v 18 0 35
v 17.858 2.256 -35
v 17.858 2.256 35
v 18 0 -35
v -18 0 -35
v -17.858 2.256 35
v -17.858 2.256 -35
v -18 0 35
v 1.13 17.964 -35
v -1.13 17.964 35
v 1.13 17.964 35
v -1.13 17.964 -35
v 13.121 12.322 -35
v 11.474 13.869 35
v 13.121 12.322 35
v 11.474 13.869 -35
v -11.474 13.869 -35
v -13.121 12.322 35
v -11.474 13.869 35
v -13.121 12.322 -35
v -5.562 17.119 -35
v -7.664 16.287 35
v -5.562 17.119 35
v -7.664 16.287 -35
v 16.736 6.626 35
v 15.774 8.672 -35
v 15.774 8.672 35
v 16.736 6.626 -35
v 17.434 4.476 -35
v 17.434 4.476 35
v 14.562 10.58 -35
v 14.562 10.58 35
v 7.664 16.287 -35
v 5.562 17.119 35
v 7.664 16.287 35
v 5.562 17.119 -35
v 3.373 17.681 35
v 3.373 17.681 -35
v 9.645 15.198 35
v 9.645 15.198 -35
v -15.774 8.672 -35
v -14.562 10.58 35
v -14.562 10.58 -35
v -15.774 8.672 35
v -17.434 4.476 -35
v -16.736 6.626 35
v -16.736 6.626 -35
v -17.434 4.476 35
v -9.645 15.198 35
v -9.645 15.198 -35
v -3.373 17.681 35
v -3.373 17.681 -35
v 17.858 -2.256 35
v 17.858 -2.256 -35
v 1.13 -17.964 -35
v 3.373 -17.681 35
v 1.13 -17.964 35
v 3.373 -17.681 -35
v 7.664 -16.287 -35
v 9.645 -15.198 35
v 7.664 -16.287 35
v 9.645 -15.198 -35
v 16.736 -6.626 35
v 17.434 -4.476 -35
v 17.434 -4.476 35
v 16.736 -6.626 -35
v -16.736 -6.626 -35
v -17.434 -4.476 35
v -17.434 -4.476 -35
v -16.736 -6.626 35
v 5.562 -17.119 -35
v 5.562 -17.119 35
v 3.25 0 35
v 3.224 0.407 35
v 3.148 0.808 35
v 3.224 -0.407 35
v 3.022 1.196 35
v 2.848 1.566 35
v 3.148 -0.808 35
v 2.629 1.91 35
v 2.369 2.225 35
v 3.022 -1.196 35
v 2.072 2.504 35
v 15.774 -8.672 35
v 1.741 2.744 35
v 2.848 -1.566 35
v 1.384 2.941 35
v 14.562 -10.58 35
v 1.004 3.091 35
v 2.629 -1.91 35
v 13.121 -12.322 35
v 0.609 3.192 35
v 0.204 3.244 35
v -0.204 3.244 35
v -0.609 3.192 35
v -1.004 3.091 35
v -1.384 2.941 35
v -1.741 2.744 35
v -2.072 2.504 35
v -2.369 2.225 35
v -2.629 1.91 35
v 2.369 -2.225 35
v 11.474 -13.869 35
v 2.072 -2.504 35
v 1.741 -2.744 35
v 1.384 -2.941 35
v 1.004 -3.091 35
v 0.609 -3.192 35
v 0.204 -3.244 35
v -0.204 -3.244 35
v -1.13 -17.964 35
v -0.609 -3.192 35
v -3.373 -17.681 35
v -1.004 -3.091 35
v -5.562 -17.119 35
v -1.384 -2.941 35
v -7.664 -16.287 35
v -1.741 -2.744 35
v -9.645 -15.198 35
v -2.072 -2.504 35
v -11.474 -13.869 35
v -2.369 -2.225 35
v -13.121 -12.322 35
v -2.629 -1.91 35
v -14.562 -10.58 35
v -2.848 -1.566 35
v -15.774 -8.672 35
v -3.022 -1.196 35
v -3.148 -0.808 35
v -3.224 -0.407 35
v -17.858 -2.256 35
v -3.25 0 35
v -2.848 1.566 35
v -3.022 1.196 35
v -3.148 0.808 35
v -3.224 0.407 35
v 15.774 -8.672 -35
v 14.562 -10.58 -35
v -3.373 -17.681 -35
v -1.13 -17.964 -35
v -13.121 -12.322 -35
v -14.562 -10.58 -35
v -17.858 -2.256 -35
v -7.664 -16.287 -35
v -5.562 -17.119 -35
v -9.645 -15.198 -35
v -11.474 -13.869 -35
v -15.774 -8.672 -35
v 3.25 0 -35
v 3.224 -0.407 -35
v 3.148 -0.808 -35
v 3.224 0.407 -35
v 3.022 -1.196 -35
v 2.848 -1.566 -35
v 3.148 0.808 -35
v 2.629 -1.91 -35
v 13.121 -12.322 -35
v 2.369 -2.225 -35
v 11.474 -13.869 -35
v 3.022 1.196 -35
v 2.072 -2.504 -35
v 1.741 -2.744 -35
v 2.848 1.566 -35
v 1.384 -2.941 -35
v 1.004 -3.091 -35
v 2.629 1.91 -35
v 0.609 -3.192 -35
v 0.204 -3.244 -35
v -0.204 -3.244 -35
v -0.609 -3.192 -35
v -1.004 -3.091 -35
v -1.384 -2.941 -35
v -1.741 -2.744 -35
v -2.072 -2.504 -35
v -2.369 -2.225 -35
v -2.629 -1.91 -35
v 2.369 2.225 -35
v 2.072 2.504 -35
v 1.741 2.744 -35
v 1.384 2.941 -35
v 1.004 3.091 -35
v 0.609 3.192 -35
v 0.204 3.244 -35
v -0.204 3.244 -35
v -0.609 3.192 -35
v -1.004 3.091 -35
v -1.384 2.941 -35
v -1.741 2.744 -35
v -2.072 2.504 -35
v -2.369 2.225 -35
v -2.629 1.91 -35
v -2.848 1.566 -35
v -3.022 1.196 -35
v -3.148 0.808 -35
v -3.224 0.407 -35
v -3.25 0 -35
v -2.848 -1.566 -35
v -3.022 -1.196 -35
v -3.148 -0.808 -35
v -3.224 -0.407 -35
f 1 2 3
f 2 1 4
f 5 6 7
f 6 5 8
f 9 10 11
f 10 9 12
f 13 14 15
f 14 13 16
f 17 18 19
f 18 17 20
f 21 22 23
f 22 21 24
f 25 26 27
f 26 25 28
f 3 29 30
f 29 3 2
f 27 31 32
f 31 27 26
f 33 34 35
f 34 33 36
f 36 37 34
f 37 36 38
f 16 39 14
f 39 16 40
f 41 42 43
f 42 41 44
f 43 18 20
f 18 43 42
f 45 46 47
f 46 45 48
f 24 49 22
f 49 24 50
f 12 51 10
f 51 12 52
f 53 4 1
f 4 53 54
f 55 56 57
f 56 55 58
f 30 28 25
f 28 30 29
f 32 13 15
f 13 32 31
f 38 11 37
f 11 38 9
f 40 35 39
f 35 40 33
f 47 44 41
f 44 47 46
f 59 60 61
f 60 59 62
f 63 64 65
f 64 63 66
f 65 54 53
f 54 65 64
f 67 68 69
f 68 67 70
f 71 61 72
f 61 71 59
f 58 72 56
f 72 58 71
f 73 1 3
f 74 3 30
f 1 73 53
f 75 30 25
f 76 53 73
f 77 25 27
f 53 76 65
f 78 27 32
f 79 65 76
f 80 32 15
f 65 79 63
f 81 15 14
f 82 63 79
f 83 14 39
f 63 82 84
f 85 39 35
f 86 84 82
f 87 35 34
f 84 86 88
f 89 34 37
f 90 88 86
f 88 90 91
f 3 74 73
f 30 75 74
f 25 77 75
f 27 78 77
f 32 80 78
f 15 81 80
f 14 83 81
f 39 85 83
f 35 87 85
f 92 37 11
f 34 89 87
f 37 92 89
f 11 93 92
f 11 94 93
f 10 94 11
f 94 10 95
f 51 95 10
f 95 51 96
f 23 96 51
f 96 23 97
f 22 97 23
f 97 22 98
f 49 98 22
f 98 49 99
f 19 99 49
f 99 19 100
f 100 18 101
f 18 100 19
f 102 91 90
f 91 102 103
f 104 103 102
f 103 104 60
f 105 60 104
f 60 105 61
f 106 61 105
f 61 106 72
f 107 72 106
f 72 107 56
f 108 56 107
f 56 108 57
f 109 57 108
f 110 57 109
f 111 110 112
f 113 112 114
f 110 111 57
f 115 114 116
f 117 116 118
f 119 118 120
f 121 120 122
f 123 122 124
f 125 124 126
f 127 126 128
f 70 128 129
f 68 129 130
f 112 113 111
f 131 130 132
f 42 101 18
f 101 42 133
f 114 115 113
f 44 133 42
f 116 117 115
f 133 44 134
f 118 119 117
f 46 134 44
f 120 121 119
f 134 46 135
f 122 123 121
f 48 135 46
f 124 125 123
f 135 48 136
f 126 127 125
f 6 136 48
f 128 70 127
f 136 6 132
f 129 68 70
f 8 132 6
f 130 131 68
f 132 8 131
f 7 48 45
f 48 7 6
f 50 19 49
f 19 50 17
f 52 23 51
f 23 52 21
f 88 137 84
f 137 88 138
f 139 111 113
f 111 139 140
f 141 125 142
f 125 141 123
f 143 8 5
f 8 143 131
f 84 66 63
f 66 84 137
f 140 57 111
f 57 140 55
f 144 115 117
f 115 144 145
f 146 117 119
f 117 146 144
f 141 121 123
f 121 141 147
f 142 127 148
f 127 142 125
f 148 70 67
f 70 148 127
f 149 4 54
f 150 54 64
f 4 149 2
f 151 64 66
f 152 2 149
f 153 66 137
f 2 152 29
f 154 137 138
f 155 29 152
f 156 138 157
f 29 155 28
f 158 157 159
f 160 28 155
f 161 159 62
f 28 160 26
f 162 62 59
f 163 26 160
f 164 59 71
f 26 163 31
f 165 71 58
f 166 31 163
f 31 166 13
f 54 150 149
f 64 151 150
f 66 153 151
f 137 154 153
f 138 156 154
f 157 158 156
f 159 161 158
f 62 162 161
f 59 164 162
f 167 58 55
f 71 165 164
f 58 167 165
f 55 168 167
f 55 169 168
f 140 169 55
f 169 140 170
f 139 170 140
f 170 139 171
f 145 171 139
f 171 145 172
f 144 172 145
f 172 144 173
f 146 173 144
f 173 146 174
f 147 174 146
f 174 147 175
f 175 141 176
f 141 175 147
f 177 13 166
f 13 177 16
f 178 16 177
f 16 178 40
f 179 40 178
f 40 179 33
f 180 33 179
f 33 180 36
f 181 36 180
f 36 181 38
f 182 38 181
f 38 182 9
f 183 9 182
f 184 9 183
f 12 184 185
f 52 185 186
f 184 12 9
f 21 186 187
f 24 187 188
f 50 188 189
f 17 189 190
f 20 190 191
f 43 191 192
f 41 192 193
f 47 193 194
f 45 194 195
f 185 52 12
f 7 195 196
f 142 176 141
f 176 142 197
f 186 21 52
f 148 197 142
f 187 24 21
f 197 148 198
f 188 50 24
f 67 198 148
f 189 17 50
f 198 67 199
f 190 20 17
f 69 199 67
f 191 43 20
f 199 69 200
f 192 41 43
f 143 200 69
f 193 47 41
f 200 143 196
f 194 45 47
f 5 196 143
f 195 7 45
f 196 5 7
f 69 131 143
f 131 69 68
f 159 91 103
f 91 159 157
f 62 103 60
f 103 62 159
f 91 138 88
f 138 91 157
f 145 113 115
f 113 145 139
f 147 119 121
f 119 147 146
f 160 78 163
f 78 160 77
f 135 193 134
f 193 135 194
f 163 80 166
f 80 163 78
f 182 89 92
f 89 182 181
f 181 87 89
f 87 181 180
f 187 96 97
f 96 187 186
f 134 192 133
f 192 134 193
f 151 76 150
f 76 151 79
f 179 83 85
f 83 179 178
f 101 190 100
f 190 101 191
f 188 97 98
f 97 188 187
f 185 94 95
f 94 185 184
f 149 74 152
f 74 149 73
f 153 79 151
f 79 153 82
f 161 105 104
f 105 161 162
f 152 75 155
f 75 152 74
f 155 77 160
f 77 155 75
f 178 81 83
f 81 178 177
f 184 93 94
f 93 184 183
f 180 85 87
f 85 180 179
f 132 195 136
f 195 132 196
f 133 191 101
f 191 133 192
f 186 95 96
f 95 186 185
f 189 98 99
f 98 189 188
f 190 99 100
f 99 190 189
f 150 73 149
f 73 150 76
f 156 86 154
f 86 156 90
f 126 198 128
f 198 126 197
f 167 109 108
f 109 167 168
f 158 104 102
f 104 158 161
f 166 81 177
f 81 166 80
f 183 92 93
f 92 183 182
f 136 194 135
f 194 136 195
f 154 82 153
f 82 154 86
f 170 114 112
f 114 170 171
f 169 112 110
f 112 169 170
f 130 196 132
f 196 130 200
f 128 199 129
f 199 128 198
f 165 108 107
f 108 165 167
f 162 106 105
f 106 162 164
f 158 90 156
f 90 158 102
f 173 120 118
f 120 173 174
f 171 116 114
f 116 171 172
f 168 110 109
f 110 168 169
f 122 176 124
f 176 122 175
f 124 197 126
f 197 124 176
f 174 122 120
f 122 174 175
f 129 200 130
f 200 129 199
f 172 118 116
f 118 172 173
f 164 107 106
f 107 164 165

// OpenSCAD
$fn = 50;


difference() {
	union() {
		translate(v = [0, 0, -35.0000000000]) {
			cylinder(h = 70, r = 18.0000000000);
		}
	}
	union() {
		translate(v = [0, 0, -100.0000000000]) {
			cylinder(h = 200, r = 3.2500000000);
		}
	}
}
